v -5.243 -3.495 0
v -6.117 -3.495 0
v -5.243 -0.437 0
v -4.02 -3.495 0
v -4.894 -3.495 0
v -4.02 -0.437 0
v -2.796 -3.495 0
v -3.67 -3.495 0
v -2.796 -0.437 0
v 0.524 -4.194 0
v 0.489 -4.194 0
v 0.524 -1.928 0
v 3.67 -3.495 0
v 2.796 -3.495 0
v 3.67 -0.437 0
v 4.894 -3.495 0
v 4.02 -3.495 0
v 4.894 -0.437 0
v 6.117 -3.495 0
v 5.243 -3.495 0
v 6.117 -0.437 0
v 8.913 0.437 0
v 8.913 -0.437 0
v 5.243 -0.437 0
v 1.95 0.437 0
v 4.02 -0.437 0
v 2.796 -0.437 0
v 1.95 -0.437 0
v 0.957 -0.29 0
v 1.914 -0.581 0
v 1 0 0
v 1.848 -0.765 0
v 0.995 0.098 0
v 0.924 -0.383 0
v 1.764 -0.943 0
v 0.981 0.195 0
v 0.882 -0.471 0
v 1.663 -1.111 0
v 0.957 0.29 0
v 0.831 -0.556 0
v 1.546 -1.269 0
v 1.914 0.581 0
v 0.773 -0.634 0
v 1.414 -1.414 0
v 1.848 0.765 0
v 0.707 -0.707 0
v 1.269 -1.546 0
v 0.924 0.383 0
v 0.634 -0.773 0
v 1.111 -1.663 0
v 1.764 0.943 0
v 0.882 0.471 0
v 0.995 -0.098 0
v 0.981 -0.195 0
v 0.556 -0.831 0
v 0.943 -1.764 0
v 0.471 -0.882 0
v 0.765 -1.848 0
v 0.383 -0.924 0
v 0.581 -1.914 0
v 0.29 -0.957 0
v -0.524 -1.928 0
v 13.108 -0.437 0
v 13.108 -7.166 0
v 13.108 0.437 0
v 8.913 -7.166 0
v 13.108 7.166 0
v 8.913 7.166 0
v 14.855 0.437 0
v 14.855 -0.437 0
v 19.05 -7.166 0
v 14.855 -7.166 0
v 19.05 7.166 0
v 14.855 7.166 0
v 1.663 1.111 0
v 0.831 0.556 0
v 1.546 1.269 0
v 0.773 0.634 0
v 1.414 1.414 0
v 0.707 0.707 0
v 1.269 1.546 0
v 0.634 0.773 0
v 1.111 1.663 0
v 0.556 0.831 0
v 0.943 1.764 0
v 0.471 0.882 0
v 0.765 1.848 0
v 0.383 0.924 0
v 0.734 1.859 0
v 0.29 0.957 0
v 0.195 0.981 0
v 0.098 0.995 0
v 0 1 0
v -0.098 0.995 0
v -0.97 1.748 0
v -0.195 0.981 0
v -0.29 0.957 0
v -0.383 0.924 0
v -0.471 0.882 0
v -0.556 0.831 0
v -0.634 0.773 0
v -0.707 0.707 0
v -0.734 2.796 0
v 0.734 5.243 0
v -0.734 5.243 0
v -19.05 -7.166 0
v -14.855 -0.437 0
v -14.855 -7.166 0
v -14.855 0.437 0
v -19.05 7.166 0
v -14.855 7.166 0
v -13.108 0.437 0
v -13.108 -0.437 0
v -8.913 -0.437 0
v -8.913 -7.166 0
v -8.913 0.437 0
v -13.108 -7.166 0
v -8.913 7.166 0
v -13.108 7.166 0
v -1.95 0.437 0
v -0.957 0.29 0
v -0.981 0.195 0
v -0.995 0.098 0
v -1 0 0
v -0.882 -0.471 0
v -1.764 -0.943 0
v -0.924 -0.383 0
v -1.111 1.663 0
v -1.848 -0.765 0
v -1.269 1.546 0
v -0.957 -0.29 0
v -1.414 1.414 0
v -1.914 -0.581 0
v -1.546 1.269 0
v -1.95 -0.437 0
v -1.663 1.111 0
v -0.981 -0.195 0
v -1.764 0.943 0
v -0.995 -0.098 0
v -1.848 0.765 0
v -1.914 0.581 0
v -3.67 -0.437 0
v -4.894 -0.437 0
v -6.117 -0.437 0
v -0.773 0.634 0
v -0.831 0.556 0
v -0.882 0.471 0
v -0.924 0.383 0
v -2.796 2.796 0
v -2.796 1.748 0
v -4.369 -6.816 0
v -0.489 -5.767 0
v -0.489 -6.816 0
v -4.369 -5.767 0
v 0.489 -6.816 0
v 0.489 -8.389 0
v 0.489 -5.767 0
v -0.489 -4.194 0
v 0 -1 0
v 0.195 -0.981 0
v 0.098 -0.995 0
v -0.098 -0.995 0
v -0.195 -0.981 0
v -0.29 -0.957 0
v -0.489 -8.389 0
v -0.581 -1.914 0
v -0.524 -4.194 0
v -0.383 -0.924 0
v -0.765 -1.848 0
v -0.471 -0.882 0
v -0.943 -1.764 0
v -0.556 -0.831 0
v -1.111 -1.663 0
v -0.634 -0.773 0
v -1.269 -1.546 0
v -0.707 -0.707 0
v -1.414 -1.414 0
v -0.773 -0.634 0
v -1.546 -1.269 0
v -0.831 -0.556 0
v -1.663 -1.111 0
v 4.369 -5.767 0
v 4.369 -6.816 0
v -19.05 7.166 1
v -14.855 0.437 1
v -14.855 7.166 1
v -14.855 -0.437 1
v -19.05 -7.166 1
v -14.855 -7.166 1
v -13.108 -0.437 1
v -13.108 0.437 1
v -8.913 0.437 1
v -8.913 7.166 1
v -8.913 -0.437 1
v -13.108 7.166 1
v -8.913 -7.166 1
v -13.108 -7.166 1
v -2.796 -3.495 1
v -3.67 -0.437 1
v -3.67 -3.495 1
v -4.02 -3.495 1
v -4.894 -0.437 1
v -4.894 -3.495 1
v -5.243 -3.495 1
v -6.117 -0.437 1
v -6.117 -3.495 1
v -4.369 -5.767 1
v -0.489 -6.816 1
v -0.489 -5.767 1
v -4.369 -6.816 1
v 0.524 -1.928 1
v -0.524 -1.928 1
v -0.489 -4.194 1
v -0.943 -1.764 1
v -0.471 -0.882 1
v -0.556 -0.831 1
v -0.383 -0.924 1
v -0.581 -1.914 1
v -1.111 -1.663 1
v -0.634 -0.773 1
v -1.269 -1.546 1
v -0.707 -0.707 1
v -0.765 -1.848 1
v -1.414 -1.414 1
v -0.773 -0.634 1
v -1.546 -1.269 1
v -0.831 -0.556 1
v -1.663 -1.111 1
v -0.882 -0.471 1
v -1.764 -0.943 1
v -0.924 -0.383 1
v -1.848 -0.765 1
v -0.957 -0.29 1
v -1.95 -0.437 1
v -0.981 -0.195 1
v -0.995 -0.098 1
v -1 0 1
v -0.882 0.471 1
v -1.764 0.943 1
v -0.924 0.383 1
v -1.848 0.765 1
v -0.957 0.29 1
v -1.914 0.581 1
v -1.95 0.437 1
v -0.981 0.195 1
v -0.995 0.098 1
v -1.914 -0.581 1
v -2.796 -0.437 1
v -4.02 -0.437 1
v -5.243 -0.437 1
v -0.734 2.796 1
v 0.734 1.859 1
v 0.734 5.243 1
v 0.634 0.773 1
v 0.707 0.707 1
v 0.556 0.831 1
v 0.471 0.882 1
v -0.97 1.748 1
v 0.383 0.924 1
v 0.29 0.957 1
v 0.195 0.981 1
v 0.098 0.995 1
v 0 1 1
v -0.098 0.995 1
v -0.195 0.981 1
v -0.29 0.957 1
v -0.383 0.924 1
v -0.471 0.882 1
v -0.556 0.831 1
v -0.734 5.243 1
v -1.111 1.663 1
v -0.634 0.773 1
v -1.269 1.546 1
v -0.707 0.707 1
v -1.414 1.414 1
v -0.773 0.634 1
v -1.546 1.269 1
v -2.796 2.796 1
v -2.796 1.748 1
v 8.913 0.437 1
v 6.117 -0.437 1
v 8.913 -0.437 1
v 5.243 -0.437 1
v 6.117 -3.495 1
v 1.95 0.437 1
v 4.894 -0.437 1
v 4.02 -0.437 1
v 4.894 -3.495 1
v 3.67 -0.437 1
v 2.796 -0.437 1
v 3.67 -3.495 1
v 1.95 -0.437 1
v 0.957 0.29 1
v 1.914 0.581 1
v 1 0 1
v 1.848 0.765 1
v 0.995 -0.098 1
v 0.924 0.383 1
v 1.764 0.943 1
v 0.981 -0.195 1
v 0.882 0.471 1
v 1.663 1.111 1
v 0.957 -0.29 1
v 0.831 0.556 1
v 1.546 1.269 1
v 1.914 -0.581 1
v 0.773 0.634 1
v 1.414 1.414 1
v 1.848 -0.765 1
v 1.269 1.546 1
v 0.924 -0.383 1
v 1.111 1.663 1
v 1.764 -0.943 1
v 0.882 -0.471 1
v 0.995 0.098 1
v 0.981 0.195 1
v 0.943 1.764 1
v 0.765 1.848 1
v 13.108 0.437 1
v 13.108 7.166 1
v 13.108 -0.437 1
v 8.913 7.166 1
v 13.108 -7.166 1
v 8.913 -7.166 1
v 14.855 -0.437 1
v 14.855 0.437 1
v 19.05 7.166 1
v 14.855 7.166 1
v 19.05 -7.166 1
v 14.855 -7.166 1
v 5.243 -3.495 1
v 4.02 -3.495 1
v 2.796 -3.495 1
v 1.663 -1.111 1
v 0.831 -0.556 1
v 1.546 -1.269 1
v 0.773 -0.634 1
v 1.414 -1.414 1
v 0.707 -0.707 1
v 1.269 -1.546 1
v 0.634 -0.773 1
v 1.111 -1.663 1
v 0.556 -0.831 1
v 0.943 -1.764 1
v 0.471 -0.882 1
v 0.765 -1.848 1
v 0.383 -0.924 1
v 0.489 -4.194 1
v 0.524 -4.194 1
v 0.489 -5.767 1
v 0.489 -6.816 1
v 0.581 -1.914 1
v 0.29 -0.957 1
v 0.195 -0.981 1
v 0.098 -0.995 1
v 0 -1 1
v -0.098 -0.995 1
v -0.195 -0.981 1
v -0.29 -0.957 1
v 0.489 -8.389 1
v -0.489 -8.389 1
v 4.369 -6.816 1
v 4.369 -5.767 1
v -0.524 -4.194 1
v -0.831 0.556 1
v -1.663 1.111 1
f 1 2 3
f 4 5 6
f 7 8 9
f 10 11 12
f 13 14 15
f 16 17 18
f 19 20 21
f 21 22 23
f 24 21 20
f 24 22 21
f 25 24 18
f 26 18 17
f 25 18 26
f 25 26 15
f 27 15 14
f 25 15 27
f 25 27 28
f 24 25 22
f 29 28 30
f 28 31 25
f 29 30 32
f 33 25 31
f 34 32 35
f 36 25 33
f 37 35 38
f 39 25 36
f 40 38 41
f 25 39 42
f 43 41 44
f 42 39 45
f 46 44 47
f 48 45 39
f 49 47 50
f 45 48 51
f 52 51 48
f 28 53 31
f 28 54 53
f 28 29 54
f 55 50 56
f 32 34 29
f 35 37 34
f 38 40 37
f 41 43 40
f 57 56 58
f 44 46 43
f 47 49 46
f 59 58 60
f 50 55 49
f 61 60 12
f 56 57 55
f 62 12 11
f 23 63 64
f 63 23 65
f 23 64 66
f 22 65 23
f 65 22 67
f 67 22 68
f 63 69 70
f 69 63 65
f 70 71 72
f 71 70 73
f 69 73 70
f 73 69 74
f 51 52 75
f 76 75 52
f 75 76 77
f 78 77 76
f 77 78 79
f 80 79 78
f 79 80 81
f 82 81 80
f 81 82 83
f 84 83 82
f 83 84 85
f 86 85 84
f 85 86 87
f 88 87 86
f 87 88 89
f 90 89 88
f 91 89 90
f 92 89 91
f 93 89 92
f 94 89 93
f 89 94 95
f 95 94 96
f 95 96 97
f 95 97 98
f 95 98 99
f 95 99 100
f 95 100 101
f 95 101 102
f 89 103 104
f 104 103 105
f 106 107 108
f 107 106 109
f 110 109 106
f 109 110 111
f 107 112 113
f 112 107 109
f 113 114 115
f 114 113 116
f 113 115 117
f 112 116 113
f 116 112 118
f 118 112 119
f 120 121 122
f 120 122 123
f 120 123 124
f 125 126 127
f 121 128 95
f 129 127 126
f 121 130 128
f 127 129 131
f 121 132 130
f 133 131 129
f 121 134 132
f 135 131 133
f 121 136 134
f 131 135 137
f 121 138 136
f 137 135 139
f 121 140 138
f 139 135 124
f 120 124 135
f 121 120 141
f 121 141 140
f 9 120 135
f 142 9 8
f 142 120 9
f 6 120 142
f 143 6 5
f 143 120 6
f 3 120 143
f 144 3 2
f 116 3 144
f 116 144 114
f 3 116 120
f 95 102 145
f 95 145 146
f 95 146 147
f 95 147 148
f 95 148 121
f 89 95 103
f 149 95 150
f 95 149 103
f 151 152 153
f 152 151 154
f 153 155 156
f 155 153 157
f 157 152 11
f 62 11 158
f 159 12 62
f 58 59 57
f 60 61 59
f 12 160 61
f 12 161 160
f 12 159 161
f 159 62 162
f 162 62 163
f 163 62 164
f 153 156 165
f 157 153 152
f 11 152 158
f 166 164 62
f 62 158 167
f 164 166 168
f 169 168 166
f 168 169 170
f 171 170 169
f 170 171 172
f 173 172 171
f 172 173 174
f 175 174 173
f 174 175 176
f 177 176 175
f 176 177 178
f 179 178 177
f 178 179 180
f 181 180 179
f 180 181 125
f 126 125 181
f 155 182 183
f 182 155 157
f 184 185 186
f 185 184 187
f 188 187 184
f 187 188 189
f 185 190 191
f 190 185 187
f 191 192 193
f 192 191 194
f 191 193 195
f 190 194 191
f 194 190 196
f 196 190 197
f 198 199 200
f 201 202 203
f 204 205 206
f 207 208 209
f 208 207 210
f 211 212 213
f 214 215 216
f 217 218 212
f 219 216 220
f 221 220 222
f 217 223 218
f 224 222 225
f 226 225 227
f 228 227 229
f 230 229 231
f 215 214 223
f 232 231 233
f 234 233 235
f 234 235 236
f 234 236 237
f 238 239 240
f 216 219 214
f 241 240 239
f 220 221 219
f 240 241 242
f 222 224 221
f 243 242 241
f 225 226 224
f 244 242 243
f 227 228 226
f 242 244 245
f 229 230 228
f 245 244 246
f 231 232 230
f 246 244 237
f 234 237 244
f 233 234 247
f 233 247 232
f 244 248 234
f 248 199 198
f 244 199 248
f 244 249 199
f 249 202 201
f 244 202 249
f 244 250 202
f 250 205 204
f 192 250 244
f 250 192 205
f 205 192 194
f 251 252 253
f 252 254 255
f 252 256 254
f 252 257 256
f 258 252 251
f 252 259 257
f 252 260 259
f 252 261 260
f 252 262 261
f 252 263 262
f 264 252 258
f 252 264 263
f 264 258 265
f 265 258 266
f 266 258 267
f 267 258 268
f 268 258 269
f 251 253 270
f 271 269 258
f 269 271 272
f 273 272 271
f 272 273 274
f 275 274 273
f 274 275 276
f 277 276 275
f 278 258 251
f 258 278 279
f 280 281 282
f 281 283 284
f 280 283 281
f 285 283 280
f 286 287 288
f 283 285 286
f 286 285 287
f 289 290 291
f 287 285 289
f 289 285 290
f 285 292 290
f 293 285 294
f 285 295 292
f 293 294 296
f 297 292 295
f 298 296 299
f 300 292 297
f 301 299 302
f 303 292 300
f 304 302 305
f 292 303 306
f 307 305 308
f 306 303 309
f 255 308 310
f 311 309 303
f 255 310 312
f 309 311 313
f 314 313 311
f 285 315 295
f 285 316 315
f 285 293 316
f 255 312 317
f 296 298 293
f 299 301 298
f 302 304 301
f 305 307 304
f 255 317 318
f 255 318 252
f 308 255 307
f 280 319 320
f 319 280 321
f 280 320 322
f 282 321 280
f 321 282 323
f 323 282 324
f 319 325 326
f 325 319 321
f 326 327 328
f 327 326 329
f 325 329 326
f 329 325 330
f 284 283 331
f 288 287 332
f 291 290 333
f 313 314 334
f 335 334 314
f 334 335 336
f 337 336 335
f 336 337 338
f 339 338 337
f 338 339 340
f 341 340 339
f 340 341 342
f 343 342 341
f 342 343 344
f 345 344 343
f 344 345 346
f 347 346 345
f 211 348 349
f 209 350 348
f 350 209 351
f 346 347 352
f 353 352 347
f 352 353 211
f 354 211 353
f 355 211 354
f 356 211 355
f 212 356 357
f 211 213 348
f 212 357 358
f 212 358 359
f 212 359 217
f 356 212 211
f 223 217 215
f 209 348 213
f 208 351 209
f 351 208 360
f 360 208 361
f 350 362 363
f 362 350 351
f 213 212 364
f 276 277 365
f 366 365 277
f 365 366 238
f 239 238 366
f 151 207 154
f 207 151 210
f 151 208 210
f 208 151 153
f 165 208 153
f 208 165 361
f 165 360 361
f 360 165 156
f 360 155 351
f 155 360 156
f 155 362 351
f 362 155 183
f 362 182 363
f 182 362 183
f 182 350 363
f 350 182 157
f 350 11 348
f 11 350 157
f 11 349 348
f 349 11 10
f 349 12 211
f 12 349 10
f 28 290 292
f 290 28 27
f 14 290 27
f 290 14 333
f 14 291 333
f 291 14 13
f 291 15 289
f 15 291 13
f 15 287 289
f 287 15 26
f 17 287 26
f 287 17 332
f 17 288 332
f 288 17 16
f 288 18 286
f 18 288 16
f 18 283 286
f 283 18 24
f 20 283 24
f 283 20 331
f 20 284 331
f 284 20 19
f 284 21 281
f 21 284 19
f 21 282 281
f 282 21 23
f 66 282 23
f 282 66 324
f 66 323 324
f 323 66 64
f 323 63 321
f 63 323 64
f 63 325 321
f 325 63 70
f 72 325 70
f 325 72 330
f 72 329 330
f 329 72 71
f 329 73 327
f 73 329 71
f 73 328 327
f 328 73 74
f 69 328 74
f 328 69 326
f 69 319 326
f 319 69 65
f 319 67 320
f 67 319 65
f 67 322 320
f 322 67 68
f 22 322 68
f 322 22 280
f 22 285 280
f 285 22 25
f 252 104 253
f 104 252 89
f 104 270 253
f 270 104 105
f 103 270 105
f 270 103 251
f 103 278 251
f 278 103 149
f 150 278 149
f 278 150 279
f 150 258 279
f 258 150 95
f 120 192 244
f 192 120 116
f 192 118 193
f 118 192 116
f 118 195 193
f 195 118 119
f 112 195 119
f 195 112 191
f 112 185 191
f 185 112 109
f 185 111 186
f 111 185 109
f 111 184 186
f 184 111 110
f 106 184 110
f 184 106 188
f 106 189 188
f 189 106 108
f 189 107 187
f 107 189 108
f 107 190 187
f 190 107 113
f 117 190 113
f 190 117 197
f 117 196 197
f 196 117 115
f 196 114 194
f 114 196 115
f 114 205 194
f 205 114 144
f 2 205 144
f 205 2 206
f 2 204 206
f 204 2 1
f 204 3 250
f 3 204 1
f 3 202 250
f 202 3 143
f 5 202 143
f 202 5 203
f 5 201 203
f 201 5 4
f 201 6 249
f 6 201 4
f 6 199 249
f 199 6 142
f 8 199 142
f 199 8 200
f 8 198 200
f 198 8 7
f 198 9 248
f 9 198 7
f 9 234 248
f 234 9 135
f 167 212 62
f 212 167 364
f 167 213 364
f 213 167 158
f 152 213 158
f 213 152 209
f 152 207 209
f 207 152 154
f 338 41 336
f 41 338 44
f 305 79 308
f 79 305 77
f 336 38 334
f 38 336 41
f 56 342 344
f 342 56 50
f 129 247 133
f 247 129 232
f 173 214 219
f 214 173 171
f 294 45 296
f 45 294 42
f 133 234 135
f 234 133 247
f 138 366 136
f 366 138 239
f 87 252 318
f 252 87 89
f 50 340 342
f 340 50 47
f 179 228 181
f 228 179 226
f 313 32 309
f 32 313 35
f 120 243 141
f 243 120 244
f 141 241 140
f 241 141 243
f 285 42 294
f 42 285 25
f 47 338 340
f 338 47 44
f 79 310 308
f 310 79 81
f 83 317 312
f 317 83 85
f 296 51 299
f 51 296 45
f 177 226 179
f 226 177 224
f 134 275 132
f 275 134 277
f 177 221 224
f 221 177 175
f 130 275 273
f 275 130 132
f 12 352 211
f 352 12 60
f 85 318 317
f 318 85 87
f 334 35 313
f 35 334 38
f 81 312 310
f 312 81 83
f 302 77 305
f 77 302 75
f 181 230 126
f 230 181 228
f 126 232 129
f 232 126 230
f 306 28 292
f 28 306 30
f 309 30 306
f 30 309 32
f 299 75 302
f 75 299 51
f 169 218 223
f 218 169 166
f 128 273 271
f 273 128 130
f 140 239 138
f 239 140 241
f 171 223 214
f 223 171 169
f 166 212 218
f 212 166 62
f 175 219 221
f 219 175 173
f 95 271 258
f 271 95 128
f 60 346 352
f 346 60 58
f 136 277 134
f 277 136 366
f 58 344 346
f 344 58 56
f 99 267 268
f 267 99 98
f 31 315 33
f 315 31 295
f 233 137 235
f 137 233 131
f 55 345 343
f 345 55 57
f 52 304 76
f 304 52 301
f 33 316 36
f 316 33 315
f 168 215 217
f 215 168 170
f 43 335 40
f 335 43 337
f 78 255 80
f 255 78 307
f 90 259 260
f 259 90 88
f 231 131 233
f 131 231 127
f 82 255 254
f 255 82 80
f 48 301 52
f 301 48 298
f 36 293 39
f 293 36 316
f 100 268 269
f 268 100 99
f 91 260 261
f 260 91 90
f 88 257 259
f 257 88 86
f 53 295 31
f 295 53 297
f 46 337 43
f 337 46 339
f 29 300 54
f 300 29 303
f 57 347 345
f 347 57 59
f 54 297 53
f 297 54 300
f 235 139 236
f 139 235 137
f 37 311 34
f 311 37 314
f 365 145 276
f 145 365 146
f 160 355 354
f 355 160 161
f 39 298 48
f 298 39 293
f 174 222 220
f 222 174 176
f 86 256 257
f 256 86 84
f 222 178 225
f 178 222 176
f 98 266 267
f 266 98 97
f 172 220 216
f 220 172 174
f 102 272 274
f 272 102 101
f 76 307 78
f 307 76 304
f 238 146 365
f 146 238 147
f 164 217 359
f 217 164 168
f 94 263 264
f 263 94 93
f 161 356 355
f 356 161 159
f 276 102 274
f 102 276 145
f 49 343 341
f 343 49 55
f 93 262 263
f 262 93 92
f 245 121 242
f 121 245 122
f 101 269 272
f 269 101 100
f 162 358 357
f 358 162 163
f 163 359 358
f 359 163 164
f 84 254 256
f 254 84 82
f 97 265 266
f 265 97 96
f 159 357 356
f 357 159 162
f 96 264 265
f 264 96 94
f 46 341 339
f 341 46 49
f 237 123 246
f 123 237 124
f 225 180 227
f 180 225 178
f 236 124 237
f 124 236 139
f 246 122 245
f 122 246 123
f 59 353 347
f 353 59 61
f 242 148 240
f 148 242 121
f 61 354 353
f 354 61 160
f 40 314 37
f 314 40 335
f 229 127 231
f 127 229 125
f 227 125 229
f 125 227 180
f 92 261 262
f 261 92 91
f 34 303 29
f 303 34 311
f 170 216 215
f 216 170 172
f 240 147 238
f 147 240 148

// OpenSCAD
// Simplified ISS 2D Extrusion Model
// Designed for small scale 3D printing (1.5 inch wingspan)
// Enforces minimum feature width of 0.4mm

$fn = 64;

// --- Parameters ---
TARGET_WIDTH_MM = 38.1; // 1.5 inches
EXTRUSION_HEIGHT_MM = 1; 
MIN_FEATURE_MM = 0.4;

// --- Real World Proportions (Adjusted for 4:3 Aesthetic) ---
REAL_TRUSS_WIDTH_M = 109.0;
REAL_TRUSS_THICKNESS_M = 5.0; 

// Target Aspect Ratio: 4:3 (Width:Height)
// If Width is 109m equivalent, Height should be 109 * (3/4) = 81.75m equivalent.
// We will stretch the Solar Arrays and Spine to fill this "Virtual Box".

// Solar Array Total Span -> 81.75m
// Single Panel Length = 81.75m / 2 = ~41m (vs 34m real)
REAL_PANEL_LENGTH_M = 41.0;   
REAL_PANEL_WIDTH_M = 12.0;    

// Module Spine Total Length -> ~60m (USOS + ROS)
REAL_MODULE_LENGTH_M = 60.0;
REAL_MODULE_DIA_M = 4.5;

// --- Scaling ---
SCALE = TARGET_WIDTH_MM / REAL_TRUSS_WIDTH_M;

// Helper: robust dimension
function dim(d) = max(d * SCALE, MIN_FEATURE_MM);


module iss_2d() {
    
    // 1. Integrated Truss Structure (Main Horizontal Beam)
    truss_w = TARGET_WIDTH_MM;
    truss_h = dim(2.5); // Thicker main truss
    
    color("silver")
    translate([-truss_w/2, -truss_h/2, 0])
        square([truss_w, truss_h]);

    // 2. Pressurized Modules (Vertical Spine - Asymmetric)
    // USOS (Prograde/Forward) - "Top" in this view
    // ROS (Retrograde/Aft) - "Bottom" in this view
    
    // Core Module Widths
    mod_clipper_w = dim(4.2); // USOS is wider
    mod_ros_w = dim(3.0);     // Zarya/Zvezda narrower
    
    // USOS Stack (Nodes, Lab, JEM, Columbus) -> Extends 'Up' (Y+)
    usos_len = dim(15.0);
    translate([-mod_clipper_w/2, 0, 0])
        square([mod_clipper_w, usos_len]);
        
    // ROS Stack (Zarya, Zvezda) -> Extends 'Down' (Y-)
    // Zarya (FGB)
    zarya_len = dim(12.0);
    translate([-mod_ros_w/2, -zarya_len, 0])
        square([mod_ros_w, zarya_len]);
        
    // Zvezda (SM) - Further down, slightly narrower/different
    zvezda_len = dim(12.0);
    zvezda_w = dim(2.8);
    translate([-zvezda_w/2, -zarya_len - zvezda_len, 0])
        square([zvezda_w, zvezda_len]);
        
    // Kibo Porch (JEM-EF) - Sticking out Left on USOS
    jem_w = dim(8.0);
    jem_h = dim(3.0);
    translate([-jem_w, 5.0*SCALE, 0]) // Offset up slightly
        square([jem_w, jem_h]);


    // 3. Solar Arrays (The "H" Shape - 4 Main Pairs)
    // S6, S4, P4, P6 (Ends of Truss)
    panel_l = dim(REAL_PANEL_LENGTH_M);
    panel_w = dim(REAL_PANEL_WIDTH_M);
    
    pos_outer = (TARGET_WIDTH_MM / 2) - (panel_w / 2);
    pos_inner = pos_outer - panel_w - dim(5.0); 

    module solar_pair() {
        translate([-panel_w/2, -panel_l/2, 0])
            square([panel_w, panel_l]);
    }

    color("orange") {
        translate([pos_outer, 0, 0]) solar_pair(); // S6
        translate([pos_inner, 0, 0]) solar_pair(); // S4
        translate([-pos_outer, 0, 0]) solar_pair(); // P6
        translate([-pos_inner, 0, 0]) solar_pair(); // P4
    }
    
    // 4. "8 Interior Panels" (User Request)
    // Interpreted as: 
    // - 6 Vertical Radiators (3 Port, 3 Starboard on Truss)
    // - 2 Horizontal Panels (ROS / Zvezda Wings)
    
    // A. 6 Vertical Radiators (HRSR)
    // Located on S1 and P1 trusses (inboard of main arrays)
    rad_w = dim(2.5);
    rad_l = dim(10.0); // Extend 'down' (trailing) usually
    rad_pitch = dim(3.5); // Spacing
    
    rad_start_x = dim(8.0); // Distance from center
    
    color("white") {
        // Starboard Radiators (3)
        for(i=[0:2]) {
             translate([rad_start_x + (i*rad_pitch), -rad_l, 0])
                square([rad_w, rad_l]);
        }
        
        // Port Radiators (3)
        for(i=[0:2]) {
             translate([-rad_start_x - (i*rad_pitch) - rad_w, -rad_l, 0])
                square([rad_w, rad_l]);
        }
    }
    
    // B. 2 Horizontal Panels (ROS Solar Arrays)
    // Attached to Zvezda (Aft module)
    ros_panel_span = dim(25.0); // Total span
    ros_panel_h = dim(3.0);     // Thickness (N/S in this view? No, Horiz means E/W)
    // If "2 Horiz" means parallel to Truss (Left/Right)
    
    translate([-ros_panel_span/2, -zarya_len - (zvezda_len/2) - (ros_panel_h/2), 0])
        square([ros_panel_span, ros_panel_h]);
}

// Extrude the 2D shape
difference(){
  union(){
    linear_extrude(height = EXTRUSION_HEIGHT_MM)
      iss_2d();
    cylinder(d=4, h=EXTRUSION_HEIGHT_MM);
  }
  translate([0,0,-1])cylinder(d=2, h=EXTRUSION_HEIGHT_MM+2);
}
